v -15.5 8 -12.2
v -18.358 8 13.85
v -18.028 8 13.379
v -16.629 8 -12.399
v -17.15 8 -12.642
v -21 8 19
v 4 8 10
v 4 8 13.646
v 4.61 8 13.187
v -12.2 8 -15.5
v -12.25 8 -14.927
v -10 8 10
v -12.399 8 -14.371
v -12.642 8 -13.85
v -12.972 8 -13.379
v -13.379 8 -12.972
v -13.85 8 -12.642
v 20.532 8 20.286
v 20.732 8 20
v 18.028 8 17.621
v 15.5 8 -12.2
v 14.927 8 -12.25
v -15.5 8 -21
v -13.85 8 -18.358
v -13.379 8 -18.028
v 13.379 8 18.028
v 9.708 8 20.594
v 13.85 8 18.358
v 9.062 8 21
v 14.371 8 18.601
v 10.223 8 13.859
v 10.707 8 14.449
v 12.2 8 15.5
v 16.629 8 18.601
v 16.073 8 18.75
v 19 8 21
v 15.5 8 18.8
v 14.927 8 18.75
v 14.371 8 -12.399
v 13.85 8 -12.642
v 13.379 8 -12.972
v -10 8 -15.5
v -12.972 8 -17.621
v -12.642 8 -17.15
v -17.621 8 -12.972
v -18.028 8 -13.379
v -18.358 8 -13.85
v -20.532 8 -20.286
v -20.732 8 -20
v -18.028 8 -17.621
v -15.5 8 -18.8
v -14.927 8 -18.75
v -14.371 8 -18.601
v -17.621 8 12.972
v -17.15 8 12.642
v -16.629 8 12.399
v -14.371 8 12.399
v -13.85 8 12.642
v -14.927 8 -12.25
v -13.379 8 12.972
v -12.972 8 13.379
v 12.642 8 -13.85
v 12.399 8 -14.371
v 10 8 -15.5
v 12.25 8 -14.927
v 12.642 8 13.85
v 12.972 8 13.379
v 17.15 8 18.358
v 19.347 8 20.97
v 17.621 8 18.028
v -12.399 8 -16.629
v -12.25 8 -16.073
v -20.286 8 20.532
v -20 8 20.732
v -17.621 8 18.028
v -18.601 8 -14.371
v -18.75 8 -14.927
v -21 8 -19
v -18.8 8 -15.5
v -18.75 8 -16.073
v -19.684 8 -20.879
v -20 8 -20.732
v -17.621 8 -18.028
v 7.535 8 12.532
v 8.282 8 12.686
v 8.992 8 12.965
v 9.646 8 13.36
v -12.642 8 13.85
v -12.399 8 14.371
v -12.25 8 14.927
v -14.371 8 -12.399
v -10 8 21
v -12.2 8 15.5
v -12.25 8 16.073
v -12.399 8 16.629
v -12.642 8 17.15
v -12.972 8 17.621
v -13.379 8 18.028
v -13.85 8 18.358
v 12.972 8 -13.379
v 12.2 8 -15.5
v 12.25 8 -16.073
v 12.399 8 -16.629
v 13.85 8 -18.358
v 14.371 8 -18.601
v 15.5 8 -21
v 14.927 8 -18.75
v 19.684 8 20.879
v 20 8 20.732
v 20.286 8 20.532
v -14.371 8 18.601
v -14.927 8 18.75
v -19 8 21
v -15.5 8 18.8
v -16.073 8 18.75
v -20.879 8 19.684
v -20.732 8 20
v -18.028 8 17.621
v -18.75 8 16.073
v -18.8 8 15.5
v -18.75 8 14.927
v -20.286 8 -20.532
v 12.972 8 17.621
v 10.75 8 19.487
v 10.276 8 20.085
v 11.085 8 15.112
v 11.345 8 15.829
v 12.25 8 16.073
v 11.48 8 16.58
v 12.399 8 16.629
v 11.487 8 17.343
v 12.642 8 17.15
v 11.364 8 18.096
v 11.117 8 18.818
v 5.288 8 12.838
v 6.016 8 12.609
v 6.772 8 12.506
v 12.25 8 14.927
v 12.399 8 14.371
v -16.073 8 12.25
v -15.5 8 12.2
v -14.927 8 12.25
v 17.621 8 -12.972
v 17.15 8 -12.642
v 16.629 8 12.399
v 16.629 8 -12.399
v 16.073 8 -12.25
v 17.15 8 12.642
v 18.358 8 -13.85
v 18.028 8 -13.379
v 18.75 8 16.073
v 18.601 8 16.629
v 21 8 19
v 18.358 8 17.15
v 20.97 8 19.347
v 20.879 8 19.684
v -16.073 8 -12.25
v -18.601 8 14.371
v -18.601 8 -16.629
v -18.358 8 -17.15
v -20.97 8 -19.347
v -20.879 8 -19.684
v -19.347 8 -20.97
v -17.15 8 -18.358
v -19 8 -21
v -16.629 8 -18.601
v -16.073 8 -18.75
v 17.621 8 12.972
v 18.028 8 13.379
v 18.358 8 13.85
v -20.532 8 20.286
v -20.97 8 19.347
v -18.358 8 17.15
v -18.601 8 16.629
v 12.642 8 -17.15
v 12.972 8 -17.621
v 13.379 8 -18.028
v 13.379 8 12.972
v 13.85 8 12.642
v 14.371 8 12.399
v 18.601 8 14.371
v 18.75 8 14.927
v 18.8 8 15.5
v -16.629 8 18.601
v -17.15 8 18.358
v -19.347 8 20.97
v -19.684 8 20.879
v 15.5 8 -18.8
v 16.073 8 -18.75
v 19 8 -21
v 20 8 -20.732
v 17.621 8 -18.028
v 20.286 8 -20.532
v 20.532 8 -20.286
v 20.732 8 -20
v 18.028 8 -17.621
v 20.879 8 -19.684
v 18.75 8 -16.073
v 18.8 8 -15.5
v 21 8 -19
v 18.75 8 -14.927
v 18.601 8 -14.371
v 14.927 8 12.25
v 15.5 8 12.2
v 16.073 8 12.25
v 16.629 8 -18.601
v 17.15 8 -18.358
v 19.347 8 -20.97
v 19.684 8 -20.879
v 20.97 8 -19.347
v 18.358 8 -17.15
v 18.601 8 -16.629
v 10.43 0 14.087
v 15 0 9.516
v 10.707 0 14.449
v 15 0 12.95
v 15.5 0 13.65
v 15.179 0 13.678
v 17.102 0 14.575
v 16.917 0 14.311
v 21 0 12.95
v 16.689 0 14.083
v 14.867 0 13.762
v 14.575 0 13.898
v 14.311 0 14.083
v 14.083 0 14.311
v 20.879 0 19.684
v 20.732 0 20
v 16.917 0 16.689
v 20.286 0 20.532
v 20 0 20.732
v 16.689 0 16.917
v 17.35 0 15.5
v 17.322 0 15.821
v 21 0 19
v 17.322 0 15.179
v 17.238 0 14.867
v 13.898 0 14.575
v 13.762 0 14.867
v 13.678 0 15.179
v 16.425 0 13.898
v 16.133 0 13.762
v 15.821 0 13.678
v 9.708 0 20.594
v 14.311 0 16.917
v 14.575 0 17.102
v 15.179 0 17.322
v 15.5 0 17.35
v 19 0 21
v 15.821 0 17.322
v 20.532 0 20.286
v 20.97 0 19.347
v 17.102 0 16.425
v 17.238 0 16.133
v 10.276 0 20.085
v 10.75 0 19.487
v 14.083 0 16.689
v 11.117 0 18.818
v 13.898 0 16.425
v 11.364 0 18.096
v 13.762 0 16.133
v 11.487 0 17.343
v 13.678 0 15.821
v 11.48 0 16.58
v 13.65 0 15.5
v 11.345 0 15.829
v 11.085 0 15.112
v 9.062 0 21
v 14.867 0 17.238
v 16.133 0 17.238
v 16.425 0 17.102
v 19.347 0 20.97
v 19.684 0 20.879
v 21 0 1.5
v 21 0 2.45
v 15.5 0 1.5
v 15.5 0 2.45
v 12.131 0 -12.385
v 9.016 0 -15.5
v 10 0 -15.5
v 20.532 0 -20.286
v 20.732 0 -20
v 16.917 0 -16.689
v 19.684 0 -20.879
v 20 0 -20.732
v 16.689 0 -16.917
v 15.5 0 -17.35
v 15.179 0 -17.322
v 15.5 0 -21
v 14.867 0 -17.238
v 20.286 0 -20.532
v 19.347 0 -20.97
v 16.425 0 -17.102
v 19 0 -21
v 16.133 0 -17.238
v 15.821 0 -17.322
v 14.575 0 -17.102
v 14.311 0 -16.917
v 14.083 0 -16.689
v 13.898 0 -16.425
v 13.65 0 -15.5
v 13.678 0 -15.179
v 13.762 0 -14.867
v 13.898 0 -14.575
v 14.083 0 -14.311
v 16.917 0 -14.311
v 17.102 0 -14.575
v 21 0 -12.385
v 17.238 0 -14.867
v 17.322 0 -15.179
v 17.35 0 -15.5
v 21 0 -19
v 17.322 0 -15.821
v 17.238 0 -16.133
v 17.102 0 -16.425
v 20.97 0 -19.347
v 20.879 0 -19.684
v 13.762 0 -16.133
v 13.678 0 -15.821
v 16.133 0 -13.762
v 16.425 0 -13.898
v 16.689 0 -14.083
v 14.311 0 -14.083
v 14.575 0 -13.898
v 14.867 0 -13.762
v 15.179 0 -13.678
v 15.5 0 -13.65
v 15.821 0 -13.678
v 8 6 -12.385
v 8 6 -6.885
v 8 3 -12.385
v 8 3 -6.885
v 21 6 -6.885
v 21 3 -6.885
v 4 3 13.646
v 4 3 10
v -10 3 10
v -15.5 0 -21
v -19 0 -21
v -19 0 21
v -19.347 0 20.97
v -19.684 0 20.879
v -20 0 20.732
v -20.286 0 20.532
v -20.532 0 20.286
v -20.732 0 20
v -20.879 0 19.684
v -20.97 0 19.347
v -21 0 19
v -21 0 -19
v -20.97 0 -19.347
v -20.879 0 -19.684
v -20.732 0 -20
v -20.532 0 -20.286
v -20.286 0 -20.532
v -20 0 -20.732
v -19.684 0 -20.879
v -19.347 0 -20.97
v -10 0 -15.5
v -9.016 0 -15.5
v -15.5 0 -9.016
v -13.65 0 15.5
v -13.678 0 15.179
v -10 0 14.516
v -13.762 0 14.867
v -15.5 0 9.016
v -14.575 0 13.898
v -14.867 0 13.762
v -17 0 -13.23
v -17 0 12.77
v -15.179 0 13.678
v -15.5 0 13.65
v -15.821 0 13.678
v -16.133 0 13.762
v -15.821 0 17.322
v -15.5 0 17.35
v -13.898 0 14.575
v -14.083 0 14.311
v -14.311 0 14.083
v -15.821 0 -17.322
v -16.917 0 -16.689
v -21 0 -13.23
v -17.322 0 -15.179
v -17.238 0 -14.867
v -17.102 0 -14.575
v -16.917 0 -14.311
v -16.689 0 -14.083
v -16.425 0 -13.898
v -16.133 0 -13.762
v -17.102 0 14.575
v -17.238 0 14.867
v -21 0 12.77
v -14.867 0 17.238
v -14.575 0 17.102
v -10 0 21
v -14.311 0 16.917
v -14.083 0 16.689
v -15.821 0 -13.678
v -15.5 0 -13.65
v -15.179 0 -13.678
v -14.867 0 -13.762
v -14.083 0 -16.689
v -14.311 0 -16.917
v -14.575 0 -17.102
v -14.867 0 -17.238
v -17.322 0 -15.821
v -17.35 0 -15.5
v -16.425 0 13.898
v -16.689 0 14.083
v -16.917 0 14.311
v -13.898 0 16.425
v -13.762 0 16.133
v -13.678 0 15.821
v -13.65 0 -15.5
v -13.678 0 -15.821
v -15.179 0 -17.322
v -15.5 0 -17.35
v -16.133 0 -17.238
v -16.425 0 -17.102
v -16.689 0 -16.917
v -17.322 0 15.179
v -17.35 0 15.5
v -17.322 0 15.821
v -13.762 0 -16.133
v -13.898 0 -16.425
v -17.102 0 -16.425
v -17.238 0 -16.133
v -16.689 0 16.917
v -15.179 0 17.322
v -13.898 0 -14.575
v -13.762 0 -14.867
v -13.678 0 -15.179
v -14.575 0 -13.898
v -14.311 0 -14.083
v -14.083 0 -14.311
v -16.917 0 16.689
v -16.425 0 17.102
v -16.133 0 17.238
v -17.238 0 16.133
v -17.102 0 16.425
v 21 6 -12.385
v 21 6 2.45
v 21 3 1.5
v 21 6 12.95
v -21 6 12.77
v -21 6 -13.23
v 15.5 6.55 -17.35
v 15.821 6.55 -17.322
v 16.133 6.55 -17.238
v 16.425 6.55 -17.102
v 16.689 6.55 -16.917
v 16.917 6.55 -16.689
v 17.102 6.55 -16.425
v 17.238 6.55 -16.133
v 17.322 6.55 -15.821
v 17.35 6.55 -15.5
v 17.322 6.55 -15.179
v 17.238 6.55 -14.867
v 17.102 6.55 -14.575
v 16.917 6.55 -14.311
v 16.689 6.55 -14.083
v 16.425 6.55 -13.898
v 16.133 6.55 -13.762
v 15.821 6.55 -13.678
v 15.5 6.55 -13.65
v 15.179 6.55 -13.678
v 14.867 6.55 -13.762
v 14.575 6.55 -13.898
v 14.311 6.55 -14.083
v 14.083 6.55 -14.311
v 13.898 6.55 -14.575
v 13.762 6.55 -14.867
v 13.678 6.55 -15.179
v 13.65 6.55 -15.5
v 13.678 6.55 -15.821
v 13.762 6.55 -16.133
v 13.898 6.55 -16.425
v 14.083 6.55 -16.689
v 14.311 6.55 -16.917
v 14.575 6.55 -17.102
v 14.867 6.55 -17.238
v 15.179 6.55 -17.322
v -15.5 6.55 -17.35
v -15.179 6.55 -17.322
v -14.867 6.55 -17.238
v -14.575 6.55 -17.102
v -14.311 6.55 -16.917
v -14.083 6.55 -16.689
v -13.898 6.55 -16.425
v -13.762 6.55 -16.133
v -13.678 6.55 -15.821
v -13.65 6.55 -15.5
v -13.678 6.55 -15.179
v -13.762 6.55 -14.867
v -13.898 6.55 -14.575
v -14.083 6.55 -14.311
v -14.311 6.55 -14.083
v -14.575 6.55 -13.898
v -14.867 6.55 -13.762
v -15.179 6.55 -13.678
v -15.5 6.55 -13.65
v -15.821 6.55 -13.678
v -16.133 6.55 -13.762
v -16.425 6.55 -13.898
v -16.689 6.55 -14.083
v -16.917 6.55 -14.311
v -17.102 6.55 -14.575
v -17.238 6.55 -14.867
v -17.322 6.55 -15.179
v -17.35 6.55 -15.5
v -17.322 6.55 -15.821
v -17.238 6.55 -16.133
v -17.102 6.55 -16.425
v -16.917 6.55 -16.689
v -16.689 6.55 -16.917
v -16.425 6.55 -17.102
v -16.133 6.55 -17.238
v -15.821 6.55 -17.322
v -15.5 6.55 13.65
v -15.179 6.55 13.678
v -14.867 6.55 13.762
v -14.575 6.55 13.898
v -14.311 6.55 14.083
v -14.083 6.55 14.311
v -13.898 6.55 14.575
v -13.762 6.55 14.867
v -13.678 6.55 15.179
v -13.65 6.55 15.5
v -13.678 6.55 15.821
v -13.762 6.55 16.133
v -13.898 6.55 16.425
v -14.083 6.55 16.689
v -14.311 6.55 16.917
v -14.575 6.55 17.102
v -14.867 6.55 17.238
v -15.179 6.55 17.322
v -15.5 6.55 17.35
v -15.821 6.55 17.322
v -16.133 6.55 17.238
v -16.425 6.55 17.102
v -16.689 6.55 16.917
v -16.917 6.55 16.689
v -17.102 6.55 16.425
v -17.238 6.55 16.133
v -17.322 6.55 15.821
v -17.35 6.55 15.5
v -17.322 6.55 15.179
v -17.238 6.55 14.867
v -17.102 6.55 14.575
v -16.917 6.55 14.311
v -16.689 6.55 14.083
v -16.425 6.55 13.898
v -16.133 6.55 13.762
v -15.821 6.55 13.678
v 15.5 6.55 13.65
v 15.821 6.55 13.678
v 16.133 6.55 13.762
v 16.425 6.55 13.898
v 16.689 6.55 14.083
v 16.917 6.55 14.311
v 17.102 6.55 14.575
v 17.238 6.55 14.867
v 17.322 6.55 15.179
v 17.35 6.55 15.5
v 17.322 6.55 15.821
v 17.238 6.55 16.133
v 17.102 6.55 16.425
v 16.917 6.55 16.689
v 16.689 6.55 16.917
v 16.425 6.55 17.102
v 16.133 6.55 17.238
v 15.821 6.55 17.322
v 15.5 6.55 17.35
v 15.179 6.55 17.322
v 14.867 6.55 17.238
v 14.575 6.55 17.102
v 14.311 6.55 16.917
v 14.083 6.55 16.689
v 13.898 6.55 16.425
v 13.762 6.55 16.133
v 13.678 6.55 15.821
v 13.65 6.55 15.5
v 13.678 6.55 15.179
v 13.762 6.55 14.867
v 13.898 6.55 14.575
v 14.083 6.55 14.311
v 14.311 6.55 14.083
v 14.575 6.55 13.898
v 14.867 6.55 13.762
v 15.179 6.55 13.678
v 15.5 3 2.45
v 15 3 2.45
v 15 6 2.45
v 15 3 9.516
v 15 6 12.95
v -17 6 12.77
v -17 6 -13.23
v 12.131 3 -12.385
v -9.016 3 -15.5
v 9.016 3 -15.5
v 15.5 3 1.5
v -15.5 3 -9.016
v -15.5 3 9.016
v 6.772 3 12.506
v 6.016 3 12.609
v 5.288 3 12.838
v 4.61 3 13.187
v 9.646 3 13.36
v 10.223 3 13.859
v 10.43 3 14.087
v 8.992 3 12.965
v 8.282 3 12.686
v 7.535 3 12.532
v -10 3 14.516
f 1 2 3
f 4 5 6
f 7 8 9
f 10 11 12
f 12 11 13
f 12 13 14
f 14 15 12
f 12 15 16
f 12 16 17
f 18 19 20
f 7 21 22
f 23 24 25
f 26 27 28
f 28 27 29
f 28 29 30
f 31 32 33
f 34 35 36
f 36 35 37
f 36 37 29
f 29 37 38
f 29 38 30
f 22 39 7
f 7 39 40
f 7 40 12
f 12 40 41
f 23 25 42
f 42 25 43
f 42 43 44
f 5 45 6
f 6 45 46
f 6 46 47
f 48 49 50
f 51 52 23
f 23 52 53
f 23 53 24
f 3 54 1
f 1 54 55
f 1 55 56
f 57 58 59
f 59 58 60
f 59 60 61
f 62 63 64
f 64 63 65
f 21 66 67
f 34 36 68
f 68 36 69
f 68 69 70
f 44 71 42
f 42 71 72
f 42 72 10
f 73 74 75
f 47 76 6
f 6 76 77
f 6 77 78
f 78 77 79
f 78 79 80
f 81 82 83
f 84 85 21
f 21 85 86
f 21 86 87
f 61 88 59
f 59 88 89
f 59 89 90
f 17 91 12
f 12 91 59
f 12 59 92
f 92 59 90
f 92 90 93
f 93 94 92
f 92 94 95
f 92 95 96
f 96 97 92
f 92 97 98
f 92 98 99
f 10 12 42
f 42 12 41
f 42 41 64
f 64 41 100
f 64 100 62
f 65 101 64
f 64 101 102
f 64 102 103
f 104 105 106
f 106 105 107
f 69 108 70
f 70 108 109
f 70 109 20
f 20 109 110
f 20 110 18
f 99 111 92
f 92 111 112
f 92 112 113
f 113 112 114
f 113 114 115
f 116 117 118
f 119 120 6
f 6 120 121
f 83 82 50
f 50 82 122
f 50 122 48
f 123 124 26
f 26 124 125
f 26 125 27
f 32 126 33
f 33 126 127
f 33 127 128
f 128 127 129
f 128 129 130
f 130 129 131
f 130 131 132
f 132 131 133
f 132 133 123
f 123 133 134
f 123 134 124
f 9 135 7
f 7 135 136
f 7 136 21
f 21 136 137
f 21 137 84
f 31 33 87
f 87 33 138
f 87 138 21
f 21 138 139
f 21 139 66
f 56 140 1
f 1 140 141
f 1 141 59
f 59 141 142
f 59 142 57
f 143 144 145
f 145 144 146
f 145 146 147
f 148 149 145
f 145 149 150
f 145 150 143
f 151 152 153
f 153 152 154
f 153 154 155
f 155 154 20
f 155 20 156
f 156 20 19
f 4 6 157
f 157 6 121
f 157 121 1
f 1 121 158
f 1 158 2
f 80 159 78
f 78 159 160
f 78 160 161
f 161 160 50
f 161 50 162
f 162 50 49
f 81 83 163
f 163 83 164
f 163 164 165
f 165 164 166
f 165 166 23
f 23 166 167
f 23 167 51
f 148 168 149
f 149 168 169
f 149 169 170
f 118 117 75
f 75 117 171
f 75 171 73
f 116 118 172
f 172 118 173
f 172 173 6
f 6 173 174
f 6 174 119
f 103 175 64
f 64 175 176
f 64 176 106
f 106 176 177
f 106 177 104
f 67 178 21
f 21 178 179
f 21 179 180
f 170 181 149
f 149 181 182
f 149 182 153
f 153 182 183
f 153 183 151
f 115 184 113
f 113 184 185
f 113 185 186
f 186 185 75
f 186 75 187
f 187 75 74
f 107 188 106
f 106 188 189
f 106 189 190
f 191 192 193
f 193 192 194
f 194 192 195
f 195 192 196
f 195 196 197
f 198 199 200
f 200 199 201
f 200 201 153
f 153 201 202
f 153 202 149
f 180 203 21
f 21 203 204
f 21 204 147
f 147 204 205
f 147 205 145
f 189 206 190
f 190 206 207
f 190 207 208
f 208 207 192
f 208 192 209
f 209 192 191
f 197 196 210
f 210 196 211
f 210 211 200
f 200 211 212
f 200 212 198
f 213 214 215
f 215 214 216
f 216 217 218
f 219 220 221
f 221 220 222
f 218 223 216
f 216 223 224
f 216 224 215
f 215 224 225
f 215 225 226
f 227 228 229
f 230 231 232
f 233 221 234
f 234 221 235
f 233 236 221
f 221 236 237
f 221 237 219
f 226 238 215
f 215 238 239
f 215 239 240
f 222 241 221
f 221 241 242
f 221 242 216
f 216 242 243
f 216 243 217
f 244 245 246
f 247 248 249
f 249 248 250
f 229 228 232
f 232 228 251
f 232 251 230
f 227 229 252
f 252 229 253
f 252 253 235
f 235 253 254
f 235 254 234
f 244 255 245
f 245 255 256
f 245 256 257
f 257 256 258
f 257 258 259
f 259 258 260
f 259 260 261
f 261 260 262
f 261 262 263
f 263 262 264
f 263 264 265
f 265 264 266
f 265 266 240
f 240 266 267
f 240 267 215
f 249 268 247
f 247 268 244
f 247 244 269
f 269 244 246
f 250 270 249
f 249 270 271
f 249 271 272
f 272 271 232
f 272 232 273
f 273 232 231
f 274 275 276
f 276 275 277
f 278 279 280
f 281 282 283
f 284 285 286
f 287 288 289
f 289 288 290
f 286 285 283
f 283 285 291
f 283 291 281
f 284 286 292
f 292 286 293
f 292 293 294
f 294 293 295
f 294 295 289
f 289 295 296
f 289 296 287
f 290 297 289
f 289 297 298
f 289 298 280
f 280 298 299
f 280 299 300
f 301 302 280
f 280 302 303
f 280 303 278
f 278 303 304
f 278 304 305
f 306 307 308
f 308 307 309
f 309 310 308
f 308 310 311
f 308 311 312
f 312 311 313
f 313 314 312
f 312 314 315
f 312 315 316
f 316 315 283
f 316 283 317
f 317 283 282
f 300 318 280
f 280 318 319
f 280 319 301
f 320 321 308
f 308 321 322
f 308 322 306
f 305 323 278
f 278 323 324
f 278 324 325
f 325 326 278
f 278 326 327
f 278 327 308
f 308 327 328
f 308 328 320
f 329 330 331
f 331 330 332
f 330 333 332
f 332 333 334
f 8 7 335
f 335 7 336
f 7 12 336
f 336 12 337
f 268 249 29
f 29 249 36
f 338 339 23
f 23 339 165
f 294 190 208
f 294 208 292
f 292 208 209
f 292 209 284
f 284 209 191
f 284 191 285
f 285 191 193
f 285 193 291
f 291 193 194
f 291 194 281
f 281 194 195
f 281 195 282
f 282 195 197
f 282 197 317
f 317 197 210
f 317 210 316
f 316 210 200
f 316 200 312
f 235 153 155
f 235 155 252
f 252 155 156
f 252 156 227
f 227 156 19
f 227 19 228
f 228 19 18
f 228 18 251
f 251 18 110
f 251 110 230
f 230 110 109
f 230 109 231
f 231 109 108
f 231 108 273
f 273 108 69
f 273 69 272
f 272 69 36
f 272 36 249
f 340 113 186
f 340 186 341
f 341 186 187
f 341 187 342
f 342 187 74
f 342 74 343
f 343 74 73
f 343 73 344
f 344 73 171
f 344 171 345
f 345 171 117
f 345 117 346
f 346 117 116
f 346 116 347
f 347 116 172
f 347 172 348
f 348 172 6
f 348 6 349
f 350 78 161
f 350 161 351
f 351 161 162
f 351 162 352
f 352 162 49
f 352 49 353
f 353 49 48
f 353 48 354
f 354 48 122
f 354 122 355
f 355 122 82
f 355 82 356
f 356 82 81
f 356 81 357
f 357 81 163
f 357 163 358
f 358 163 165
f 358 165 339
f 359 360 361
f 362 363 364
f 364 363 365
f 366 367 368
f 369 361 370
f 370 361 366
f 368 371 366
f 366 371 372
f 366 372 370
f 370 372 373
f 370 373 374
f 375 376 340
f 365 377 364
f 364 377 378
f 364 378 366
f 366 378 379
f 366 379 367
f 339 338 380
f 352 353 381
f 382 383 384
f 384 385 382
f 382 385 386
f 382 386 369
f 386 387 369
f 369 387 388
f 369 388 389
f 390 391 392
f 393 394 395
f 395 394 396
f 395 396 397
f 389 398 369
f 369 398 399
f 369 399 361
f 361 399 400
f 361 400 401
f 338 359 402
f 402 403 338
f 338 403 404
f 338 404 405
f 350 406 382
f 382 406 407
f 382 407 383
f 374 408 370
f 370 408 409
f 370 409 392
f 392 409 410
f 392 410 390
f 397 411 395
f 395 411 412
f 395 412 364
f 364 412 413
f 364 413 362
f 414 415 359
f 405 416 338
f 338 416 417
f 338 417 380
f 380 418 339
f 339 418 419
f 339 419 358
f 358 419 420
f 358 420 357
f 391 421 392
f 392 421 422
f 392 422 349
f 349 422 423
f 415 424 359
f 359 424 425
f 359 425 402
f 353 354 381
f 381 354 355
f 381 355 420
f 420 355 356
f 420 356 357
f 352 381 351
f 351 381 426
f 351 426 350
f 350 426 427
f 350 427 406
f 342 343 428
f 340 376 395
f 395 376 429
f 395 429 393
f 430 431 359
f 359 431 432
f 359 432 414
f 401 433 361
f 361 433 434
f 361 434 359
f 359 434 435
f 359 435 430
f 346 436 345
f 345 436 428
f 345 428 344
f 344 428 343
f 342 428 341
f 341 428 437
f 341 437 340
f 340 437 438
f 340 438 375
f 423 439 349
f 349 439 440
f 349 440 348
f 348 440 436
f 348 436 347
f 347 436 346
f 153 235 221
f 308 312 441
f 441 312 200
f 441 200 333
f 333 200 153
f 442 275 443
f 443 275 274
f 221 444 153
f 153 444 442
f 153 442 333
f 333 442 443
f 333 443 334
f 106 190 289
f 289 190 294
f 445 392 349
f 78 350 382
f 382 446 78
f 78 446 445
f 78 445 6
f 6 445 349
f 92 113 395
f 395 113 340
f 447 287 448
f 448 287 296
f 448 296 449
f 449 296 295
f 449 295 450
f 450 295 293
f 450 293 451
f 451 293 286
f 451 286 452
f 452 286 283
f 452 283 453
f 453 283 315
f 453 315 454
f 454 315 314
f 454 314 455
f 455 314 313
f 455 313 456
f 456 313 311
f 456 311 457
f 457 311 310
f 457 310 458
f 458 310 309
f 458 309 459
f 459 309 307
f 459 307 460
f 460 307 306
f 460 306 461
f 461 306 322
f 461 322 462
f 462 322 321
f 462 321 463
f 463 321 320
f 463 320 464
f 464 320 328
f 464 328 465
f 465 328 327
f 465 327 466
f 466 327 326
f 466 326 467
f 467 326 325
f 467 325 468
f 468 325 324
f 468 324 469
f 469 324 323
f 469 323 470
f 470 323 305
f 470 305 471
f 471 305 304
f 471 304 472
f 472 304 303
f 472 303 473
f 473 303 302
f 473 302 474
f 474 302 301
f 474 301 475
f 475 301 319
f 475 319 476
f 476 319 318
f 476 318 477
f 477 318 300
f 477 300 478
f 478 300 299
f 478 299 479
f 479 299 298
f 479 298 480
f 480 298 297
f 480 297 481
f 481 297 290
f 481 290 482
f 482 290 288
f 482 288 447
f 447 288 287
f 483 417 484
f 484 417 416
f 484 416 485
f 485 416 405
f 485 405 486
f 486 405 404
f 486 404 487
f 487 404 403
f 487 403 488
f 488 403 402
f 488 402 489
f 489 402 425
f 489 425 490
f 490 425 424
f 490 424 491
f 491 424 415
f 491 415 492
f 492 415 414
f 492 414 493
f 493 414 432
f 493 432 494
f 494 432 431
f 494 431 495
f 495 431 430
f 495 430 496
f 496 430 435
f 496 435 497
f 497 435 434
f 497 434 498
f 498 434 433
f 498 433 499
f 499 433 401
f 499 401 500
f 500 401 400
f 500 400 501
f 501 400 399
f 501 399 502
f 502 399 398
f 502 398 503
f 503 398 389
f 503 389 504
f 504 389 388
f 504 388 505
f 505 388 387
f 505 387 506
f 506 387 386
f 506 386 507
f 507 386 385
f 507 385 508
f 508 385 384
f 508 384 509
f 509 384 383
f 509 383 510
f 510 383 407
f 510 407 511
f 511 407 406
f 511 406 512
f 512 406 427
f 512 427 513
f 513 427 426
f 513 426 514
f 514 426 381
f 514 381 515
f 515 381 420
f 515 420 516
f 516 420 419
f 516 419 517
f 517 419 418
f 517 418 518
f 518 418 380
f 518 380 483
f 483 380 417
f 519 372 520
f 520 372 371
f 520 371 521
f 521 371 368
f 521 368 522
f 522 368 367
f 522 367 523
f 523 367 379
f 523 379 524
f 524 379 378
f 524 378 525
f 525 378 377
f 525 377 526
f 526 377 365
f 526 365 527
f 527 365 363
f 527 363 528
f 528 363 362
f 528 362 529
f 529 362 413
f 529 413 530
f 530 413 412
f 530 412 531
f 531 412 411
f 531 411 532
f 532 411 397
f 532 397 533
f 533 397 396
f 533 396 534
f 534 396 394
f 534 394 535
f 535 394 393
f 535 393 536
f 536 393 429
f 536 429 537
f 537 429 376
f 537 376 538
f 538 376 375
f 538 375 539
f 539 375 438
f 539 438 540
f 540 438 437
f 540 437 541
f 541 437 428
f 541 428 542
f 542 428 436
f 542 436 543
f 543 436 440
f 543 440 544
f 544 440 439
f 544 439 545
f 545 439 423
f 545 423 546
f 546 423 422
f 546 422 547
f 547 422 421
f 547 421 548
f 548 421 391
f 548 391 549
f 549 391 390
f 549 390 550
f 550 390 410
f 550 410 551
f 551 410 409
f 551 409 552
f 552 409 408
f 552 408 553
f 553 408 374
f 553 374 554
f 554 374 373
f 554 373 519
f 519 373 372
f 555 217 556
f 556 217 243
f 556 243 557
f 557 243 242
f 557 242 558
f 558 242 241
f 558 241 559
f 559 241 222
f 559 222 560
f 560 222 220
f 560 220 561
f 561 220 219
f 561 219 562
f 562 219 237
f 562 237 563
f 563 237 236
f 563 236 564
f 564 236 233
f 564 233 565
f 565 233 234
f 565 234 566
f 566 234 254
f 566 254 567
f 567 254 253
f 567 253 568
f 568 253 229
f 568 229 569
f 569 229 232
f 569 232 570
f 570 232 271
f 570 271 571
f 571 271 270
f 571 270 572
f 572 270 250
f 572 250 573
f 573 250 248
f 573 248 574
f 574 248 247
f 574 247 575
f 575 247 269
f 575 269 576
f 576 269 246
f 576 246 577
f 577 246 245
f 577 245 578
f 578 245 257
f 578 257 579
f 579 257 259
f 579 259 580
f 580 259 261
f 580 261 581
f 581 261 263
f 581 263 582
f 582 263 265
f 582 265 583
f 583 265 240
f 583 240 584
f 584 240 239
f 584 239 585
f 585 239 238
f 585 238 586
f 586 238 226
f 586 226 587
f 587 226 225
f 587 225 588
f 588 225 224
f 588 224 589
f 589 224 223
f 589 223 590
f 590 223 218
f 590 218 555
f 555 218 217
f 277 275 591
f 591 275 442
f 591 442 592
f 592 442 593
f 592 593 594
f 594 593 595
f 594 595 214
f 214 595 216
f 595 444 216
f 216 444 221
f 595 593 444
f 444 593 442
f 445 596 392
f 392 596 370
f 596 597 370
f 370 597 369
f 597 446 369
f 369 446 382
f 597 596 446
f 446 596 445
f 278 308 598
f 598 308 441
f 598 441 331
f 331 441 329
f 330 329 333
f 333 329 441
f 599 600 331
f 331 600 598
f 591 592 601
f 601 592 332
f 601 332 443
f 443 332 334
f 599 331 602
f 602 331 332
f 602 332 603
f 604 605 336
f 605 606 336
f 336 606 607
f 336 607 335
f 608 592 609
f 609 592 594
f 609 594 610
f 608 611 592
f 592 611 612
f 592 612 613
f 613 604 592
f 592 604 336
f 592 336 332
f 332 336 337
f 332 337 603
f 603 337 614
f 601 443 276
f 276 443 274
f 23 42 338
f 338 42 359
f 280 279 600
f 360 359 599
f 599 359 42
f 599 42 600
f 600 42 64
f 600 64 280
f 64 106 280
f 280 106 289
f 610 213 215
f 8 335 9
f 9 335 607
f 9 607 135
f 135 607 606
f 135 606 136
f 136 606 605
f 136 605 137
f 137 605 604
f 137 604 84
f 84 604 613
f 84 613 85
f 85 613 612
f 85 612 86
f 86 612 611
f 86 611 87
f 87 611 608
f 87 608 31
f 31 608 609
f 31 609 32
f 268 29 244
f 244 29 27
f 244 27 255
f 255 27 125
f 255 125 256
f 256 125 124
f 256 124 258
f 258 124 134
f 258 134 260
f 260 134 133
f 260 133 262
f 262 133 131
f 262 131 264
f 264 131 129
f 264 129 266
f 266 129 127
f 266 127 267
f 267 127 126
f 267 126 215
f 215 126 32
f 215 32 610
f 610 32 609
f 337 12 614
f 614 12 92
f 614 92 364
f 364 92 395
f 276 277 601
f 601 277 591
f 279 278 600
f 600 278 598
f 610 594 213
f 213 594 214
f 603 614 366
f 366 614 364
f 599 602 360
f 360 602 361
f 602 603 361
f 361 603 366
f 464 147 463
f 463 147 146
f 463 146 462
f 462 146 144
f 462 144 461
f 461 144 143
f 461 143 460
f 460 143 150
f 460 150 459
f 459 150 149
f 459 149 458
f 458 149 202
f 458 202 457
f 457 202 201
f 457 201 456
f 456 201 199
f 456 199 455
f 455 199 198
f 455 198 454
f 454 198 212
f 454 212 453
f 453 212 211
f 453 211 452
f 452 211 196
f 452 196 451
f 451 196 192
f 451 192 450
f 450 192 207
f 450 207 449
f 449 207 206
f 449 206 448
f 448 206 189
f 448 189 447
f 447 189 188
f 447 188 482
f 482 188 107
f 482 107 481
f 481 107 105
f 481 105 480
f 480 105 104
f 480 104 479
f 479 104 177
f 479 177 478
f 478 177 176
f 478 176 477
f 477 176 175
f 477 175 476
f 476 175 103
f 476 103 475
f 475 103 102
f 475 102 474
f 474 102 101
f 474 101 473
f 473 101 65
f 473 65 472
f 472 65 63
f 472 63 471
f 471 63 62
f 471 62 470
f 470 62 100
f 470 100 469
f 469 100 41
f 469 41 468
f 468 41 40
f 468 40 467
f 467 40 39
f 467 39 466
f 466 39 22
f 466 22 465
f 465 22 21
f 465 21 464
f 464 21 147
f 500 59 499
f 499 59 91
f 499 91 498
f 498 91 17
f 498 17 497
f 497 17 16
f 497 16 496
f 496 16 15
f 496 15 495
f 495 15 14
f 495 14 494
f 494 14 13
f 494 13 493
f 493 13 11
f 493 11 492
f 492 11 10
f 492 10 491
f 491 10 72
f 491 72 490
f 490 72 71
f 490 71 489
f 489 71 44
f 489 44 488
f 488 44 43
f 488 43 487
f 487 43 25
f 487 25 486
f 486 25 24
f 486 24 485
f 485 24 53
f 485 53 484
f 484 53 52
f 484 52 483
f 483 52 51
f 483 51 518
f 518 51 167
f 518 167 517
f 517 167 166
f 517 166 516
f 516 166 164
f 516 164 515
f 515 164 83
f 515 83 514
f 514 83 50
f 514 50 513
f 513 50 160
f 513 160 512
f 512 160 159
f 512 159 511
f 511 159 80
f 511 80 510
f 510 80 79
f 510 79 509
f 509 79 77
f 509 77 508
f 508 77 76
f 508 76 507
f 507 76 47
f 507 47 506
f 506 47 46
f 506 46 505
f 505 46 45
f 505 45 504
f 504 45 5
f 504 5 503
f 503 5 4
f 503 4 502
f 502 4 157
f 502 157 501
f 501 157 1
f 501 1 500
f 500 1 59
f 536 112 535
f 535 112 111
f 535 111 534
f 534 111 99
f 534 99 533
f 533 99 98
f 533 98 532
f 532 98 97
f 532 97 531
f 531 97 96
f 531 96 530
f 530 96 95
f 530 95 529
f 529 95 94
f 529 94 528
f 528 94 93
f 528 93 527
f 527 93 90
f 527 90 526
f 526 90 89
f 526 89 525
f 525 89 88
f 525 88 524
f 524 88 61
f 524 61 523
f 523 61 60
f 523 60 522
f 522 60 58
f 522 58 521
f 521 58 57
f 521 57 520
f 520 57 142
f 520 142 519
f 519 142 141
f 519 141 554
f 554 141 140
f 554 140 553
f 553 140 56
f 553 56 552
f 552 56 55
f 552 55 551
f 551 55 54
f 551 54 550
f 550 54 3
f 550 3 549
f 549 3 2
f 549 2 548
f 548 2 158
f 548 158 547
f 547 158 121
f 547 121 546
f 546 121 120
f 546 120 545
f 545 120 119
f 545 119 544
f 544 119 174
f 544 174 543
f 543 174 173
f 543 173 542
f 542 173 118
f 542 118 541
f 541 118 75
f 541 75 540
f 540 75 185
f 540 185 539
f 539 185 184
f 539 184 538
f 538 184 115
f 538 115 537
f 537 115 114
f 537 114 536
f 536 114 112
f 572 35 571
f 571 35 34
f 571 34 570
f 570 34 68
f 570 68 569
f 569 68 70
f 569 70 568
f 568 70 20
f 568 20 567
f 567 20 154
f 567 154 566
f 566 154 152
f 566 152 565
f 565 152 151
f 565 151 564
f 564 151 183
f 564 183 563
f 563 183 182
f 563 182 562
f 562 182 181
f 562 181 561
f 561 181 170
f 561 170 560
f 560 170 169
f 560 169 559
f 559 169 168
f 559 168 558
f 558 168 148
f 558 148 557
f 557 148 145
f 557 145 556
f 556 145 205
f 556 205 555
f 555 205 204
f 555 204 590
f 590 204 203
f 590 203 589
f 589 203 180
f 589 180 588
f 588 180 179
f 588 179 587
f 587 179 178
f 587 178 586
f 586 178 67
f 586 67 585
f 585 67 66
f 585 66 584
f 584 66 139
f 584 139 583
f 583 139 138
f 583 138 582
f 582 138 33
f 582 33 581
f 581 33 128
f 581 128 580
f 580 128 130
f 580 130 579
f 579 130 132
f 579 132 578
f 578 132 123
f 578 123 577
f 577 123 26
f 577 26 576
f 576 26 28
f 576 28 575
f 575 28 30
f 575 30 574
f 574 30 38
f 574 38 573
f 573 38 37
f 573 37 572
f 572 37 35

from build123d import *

# Parameters (mm, degrees)
SKETCH_1_W                = 42
SKETCH_1_H                = 42
SKETCH_1_R                = 1.85
EXTRUDE_1_DEPTH           = 8
FILLET_2_R                = 2
FILLET_3_R                = 2
FILLET_4_R                = 2
FILLET_5_R                = 2
SKETCH_2_W                = 6
SKETCH_2_H                = 10.5
SKETCH_2_W_2              = 4
SKETCH_2_H_2              = 26
SKETCH_2_W_3              = 13
SKETCH_2_H_3              = 5.5
CUT_EXTRUDE_1_DEPTH       = 6
SKETCH_3_W                = 5.557975162
SKETCH_3_H                = 9
CUT_EXTRUDE_2_DEPTH       = 3
CUT_EXTRUDE_3_DEPTH       = 31.757112998
CUT_EXTRUDE_13_DEPTH      = 31.757112998
SKETCH_6_W                = 14
SKETCH_6_H                = 11
CUT_EXTRUDE_4_DEPTH       = 31.757112998
CUT_EXTRUDE_5_DEPTH       = 3
HOLE_WIZARD_2_D           = 3.6
HOLE_WIZARD_2_DEPTH       = 8
HOLE_WIZARD_2_CSINK_D     = 6.6
HOLE_WIZARD_2_CSINK_ANGLE = 90


with BuildPart() as part:
    # 草图1 → 凸台-拉伸1 (new body)
    with BuildSketch(Plane(origin=(0, 0, 0), x_dir=(1, 0, 0), z_dir=(0, 1, 0))):
        Rectangle(SKETCH_1_W, SKETCH_1_H)
        with Locations(Location((15.5, 15.5, 0), (0, 0, 270))):
            Circle(SKETCH_1_R, mode=Mode.SUBTRACT)
        with Locations(Location((-15.5, 15.5, 0), (0, 0, 270))):
            Circle(SKETCH_1_R, mode=Mode.SUBTRACT)
        with Locations(Location((-15.5, -15.5, 0), (0, 0, 270))):
            Circle(SKETCH_1_R, mode=Mode.SUBTRACT)
        with Locations(Location((15.5, -15.5, 0), (0, 0, 270))):
            Circle(SKETCH_1_R, mode=Mode.SUBTRACT)
    extrude(amount=EXTRUDE_1_DEPTH)

    # 圆角2
    fillet_2_edges = [part.edges().sort_by_distance(p)[0] for p in [
        (-21, 4, -21),
    ]]
    fillet(fillet_2_edges, radius=FILLET_2_R)

    # 圆角3
    fillet_3_edges = [part.edges().sort_by_distance(p)[0] for p in [
        (-21, 4, 21),
    ]]
    fillet(fillet_3_edges, radius=FILLET_3_R)

    # 圆角4
    fillet_4_edges = [part.edges().sort_by_distance(p)[0] for p in [
        (21, 4, 21),
    ]]
    fillet(fillet_4_edges, radius=FILLET_4_R)

    # 圆角5
    fillet_5_edges = [part.edges().sort_by_distance(p)[0] for p in [
        (21, 4, -21),
    ]]
    fillet(fillet_5_edges, radius=FILLET_5_R)

    # 草图2 → 切除-拉伸1 (cut)
    with BuildSketch(Plane.XZ):
        with Locations((18, 7.7)):
            Rectangle(SKETCH_2_W, SKETCH_2_H)
        with Locations((-19, -0.23)):
            Rectangle(SKETCH_2_W_2, SKETCH_2_H_2)
        with Locations((14.5, -9.635)):
            Rectangle(SKETCH_2_W_3, SKETCH_2_H_3)
    extrude(amount=-CUT_EXTRUDE_1_DEPTH, mode=Mode.SUBTRACT)

    # 草图3 → 切除-拉伸2 (cut)
    with BuildSketch(Plane.XZ):
        with Locations((18.221012419, -3)):
            Rectangle(SKETCH_3_W, SKETCH_3_H)
    extrude(amount=-CUT_EXTRUDE_2_DEPTH, mode=Mode.SUBTRACT)

    # 草图5 → 切除-拉伸3 (cut, through all)
    with BuildSketch(Plane.XZ):
        Polygon((-15.5, -21), (-10, -15.5), (10, -15.5), (15.5, -21), align=None)
    extrude(amount=-CUT_EXTRUDE_3_DEPTH, mode=Mode.SUBTRACT)

    # 草图10 → 切除-拉伸13 (cut, through all)
    with BuildSketch(Plane(origin=(0, 8, 0), x_dir=(1, 0, 0), z_dir=(0, 1, 0))):
        with BuildLine():
            Line((7, -21.5), (2.5, -21.5))
            Line((2.5, -21.5), (2.5, -17))
            ThreePointArc((2.5, -17), (10.181980515, -13.818019485), (7, -21.5))
        make_face()
    extrude(amount=-CUT_EXTRUDE_13_DEPTH, mode=Mode.SUBTRACT)

    # 草图6 → 切除-拉伸4 (cut, through all)
    with BuildSketch(Plane.XZ):
        with Locations((-3, 15.5)):
            Rectangle(SKETCH_6_W, SKETCH_6_H)
    extrude(amount=-CUT_EXTRUDE_4_DEPTH, mode=Mode.SUBTRACT)

    # 草图7 → 切除-拉伸5 (cut)
    with BuildSketch(Plane.XZ):
        Polygon((-9.016278831, 15.5), (-15.5, 9.016278831), (-15.5, -9.016278831), (-9.016278831, -15.5), (9.016278831, -15.5), (15.5, -9.016278831), (15.5, 9.016278831), (9.016278831, 15.5), align=None)
    extrude(amount=-CUT_EXTRUDE_5_DEPTH, mode=Mode.SUBTRACT)

    # 打孔尺寸(%根据十字)槽半沉头木螺钉的类型2
    with Locations(Plane(origin=(0, 8, 0), x_dir=(1, 0, 0), z_dir=(0, 1, 0))):
        with Locations((15.5, -15.5), (-15.5, -15.5), (-15.5, 15.5), (15.5, 15.5)):
            CounterSinkHole(HOLE_WIZARD_2_D / 2, HOLE_WIZARD_2_CSINK_D / 2, depth=HOLE_WIZARD_2_DEPTH, counter_sink_angle=HOLE_WIZARD_2_CSINK_ANGLE)


solid = part.part
